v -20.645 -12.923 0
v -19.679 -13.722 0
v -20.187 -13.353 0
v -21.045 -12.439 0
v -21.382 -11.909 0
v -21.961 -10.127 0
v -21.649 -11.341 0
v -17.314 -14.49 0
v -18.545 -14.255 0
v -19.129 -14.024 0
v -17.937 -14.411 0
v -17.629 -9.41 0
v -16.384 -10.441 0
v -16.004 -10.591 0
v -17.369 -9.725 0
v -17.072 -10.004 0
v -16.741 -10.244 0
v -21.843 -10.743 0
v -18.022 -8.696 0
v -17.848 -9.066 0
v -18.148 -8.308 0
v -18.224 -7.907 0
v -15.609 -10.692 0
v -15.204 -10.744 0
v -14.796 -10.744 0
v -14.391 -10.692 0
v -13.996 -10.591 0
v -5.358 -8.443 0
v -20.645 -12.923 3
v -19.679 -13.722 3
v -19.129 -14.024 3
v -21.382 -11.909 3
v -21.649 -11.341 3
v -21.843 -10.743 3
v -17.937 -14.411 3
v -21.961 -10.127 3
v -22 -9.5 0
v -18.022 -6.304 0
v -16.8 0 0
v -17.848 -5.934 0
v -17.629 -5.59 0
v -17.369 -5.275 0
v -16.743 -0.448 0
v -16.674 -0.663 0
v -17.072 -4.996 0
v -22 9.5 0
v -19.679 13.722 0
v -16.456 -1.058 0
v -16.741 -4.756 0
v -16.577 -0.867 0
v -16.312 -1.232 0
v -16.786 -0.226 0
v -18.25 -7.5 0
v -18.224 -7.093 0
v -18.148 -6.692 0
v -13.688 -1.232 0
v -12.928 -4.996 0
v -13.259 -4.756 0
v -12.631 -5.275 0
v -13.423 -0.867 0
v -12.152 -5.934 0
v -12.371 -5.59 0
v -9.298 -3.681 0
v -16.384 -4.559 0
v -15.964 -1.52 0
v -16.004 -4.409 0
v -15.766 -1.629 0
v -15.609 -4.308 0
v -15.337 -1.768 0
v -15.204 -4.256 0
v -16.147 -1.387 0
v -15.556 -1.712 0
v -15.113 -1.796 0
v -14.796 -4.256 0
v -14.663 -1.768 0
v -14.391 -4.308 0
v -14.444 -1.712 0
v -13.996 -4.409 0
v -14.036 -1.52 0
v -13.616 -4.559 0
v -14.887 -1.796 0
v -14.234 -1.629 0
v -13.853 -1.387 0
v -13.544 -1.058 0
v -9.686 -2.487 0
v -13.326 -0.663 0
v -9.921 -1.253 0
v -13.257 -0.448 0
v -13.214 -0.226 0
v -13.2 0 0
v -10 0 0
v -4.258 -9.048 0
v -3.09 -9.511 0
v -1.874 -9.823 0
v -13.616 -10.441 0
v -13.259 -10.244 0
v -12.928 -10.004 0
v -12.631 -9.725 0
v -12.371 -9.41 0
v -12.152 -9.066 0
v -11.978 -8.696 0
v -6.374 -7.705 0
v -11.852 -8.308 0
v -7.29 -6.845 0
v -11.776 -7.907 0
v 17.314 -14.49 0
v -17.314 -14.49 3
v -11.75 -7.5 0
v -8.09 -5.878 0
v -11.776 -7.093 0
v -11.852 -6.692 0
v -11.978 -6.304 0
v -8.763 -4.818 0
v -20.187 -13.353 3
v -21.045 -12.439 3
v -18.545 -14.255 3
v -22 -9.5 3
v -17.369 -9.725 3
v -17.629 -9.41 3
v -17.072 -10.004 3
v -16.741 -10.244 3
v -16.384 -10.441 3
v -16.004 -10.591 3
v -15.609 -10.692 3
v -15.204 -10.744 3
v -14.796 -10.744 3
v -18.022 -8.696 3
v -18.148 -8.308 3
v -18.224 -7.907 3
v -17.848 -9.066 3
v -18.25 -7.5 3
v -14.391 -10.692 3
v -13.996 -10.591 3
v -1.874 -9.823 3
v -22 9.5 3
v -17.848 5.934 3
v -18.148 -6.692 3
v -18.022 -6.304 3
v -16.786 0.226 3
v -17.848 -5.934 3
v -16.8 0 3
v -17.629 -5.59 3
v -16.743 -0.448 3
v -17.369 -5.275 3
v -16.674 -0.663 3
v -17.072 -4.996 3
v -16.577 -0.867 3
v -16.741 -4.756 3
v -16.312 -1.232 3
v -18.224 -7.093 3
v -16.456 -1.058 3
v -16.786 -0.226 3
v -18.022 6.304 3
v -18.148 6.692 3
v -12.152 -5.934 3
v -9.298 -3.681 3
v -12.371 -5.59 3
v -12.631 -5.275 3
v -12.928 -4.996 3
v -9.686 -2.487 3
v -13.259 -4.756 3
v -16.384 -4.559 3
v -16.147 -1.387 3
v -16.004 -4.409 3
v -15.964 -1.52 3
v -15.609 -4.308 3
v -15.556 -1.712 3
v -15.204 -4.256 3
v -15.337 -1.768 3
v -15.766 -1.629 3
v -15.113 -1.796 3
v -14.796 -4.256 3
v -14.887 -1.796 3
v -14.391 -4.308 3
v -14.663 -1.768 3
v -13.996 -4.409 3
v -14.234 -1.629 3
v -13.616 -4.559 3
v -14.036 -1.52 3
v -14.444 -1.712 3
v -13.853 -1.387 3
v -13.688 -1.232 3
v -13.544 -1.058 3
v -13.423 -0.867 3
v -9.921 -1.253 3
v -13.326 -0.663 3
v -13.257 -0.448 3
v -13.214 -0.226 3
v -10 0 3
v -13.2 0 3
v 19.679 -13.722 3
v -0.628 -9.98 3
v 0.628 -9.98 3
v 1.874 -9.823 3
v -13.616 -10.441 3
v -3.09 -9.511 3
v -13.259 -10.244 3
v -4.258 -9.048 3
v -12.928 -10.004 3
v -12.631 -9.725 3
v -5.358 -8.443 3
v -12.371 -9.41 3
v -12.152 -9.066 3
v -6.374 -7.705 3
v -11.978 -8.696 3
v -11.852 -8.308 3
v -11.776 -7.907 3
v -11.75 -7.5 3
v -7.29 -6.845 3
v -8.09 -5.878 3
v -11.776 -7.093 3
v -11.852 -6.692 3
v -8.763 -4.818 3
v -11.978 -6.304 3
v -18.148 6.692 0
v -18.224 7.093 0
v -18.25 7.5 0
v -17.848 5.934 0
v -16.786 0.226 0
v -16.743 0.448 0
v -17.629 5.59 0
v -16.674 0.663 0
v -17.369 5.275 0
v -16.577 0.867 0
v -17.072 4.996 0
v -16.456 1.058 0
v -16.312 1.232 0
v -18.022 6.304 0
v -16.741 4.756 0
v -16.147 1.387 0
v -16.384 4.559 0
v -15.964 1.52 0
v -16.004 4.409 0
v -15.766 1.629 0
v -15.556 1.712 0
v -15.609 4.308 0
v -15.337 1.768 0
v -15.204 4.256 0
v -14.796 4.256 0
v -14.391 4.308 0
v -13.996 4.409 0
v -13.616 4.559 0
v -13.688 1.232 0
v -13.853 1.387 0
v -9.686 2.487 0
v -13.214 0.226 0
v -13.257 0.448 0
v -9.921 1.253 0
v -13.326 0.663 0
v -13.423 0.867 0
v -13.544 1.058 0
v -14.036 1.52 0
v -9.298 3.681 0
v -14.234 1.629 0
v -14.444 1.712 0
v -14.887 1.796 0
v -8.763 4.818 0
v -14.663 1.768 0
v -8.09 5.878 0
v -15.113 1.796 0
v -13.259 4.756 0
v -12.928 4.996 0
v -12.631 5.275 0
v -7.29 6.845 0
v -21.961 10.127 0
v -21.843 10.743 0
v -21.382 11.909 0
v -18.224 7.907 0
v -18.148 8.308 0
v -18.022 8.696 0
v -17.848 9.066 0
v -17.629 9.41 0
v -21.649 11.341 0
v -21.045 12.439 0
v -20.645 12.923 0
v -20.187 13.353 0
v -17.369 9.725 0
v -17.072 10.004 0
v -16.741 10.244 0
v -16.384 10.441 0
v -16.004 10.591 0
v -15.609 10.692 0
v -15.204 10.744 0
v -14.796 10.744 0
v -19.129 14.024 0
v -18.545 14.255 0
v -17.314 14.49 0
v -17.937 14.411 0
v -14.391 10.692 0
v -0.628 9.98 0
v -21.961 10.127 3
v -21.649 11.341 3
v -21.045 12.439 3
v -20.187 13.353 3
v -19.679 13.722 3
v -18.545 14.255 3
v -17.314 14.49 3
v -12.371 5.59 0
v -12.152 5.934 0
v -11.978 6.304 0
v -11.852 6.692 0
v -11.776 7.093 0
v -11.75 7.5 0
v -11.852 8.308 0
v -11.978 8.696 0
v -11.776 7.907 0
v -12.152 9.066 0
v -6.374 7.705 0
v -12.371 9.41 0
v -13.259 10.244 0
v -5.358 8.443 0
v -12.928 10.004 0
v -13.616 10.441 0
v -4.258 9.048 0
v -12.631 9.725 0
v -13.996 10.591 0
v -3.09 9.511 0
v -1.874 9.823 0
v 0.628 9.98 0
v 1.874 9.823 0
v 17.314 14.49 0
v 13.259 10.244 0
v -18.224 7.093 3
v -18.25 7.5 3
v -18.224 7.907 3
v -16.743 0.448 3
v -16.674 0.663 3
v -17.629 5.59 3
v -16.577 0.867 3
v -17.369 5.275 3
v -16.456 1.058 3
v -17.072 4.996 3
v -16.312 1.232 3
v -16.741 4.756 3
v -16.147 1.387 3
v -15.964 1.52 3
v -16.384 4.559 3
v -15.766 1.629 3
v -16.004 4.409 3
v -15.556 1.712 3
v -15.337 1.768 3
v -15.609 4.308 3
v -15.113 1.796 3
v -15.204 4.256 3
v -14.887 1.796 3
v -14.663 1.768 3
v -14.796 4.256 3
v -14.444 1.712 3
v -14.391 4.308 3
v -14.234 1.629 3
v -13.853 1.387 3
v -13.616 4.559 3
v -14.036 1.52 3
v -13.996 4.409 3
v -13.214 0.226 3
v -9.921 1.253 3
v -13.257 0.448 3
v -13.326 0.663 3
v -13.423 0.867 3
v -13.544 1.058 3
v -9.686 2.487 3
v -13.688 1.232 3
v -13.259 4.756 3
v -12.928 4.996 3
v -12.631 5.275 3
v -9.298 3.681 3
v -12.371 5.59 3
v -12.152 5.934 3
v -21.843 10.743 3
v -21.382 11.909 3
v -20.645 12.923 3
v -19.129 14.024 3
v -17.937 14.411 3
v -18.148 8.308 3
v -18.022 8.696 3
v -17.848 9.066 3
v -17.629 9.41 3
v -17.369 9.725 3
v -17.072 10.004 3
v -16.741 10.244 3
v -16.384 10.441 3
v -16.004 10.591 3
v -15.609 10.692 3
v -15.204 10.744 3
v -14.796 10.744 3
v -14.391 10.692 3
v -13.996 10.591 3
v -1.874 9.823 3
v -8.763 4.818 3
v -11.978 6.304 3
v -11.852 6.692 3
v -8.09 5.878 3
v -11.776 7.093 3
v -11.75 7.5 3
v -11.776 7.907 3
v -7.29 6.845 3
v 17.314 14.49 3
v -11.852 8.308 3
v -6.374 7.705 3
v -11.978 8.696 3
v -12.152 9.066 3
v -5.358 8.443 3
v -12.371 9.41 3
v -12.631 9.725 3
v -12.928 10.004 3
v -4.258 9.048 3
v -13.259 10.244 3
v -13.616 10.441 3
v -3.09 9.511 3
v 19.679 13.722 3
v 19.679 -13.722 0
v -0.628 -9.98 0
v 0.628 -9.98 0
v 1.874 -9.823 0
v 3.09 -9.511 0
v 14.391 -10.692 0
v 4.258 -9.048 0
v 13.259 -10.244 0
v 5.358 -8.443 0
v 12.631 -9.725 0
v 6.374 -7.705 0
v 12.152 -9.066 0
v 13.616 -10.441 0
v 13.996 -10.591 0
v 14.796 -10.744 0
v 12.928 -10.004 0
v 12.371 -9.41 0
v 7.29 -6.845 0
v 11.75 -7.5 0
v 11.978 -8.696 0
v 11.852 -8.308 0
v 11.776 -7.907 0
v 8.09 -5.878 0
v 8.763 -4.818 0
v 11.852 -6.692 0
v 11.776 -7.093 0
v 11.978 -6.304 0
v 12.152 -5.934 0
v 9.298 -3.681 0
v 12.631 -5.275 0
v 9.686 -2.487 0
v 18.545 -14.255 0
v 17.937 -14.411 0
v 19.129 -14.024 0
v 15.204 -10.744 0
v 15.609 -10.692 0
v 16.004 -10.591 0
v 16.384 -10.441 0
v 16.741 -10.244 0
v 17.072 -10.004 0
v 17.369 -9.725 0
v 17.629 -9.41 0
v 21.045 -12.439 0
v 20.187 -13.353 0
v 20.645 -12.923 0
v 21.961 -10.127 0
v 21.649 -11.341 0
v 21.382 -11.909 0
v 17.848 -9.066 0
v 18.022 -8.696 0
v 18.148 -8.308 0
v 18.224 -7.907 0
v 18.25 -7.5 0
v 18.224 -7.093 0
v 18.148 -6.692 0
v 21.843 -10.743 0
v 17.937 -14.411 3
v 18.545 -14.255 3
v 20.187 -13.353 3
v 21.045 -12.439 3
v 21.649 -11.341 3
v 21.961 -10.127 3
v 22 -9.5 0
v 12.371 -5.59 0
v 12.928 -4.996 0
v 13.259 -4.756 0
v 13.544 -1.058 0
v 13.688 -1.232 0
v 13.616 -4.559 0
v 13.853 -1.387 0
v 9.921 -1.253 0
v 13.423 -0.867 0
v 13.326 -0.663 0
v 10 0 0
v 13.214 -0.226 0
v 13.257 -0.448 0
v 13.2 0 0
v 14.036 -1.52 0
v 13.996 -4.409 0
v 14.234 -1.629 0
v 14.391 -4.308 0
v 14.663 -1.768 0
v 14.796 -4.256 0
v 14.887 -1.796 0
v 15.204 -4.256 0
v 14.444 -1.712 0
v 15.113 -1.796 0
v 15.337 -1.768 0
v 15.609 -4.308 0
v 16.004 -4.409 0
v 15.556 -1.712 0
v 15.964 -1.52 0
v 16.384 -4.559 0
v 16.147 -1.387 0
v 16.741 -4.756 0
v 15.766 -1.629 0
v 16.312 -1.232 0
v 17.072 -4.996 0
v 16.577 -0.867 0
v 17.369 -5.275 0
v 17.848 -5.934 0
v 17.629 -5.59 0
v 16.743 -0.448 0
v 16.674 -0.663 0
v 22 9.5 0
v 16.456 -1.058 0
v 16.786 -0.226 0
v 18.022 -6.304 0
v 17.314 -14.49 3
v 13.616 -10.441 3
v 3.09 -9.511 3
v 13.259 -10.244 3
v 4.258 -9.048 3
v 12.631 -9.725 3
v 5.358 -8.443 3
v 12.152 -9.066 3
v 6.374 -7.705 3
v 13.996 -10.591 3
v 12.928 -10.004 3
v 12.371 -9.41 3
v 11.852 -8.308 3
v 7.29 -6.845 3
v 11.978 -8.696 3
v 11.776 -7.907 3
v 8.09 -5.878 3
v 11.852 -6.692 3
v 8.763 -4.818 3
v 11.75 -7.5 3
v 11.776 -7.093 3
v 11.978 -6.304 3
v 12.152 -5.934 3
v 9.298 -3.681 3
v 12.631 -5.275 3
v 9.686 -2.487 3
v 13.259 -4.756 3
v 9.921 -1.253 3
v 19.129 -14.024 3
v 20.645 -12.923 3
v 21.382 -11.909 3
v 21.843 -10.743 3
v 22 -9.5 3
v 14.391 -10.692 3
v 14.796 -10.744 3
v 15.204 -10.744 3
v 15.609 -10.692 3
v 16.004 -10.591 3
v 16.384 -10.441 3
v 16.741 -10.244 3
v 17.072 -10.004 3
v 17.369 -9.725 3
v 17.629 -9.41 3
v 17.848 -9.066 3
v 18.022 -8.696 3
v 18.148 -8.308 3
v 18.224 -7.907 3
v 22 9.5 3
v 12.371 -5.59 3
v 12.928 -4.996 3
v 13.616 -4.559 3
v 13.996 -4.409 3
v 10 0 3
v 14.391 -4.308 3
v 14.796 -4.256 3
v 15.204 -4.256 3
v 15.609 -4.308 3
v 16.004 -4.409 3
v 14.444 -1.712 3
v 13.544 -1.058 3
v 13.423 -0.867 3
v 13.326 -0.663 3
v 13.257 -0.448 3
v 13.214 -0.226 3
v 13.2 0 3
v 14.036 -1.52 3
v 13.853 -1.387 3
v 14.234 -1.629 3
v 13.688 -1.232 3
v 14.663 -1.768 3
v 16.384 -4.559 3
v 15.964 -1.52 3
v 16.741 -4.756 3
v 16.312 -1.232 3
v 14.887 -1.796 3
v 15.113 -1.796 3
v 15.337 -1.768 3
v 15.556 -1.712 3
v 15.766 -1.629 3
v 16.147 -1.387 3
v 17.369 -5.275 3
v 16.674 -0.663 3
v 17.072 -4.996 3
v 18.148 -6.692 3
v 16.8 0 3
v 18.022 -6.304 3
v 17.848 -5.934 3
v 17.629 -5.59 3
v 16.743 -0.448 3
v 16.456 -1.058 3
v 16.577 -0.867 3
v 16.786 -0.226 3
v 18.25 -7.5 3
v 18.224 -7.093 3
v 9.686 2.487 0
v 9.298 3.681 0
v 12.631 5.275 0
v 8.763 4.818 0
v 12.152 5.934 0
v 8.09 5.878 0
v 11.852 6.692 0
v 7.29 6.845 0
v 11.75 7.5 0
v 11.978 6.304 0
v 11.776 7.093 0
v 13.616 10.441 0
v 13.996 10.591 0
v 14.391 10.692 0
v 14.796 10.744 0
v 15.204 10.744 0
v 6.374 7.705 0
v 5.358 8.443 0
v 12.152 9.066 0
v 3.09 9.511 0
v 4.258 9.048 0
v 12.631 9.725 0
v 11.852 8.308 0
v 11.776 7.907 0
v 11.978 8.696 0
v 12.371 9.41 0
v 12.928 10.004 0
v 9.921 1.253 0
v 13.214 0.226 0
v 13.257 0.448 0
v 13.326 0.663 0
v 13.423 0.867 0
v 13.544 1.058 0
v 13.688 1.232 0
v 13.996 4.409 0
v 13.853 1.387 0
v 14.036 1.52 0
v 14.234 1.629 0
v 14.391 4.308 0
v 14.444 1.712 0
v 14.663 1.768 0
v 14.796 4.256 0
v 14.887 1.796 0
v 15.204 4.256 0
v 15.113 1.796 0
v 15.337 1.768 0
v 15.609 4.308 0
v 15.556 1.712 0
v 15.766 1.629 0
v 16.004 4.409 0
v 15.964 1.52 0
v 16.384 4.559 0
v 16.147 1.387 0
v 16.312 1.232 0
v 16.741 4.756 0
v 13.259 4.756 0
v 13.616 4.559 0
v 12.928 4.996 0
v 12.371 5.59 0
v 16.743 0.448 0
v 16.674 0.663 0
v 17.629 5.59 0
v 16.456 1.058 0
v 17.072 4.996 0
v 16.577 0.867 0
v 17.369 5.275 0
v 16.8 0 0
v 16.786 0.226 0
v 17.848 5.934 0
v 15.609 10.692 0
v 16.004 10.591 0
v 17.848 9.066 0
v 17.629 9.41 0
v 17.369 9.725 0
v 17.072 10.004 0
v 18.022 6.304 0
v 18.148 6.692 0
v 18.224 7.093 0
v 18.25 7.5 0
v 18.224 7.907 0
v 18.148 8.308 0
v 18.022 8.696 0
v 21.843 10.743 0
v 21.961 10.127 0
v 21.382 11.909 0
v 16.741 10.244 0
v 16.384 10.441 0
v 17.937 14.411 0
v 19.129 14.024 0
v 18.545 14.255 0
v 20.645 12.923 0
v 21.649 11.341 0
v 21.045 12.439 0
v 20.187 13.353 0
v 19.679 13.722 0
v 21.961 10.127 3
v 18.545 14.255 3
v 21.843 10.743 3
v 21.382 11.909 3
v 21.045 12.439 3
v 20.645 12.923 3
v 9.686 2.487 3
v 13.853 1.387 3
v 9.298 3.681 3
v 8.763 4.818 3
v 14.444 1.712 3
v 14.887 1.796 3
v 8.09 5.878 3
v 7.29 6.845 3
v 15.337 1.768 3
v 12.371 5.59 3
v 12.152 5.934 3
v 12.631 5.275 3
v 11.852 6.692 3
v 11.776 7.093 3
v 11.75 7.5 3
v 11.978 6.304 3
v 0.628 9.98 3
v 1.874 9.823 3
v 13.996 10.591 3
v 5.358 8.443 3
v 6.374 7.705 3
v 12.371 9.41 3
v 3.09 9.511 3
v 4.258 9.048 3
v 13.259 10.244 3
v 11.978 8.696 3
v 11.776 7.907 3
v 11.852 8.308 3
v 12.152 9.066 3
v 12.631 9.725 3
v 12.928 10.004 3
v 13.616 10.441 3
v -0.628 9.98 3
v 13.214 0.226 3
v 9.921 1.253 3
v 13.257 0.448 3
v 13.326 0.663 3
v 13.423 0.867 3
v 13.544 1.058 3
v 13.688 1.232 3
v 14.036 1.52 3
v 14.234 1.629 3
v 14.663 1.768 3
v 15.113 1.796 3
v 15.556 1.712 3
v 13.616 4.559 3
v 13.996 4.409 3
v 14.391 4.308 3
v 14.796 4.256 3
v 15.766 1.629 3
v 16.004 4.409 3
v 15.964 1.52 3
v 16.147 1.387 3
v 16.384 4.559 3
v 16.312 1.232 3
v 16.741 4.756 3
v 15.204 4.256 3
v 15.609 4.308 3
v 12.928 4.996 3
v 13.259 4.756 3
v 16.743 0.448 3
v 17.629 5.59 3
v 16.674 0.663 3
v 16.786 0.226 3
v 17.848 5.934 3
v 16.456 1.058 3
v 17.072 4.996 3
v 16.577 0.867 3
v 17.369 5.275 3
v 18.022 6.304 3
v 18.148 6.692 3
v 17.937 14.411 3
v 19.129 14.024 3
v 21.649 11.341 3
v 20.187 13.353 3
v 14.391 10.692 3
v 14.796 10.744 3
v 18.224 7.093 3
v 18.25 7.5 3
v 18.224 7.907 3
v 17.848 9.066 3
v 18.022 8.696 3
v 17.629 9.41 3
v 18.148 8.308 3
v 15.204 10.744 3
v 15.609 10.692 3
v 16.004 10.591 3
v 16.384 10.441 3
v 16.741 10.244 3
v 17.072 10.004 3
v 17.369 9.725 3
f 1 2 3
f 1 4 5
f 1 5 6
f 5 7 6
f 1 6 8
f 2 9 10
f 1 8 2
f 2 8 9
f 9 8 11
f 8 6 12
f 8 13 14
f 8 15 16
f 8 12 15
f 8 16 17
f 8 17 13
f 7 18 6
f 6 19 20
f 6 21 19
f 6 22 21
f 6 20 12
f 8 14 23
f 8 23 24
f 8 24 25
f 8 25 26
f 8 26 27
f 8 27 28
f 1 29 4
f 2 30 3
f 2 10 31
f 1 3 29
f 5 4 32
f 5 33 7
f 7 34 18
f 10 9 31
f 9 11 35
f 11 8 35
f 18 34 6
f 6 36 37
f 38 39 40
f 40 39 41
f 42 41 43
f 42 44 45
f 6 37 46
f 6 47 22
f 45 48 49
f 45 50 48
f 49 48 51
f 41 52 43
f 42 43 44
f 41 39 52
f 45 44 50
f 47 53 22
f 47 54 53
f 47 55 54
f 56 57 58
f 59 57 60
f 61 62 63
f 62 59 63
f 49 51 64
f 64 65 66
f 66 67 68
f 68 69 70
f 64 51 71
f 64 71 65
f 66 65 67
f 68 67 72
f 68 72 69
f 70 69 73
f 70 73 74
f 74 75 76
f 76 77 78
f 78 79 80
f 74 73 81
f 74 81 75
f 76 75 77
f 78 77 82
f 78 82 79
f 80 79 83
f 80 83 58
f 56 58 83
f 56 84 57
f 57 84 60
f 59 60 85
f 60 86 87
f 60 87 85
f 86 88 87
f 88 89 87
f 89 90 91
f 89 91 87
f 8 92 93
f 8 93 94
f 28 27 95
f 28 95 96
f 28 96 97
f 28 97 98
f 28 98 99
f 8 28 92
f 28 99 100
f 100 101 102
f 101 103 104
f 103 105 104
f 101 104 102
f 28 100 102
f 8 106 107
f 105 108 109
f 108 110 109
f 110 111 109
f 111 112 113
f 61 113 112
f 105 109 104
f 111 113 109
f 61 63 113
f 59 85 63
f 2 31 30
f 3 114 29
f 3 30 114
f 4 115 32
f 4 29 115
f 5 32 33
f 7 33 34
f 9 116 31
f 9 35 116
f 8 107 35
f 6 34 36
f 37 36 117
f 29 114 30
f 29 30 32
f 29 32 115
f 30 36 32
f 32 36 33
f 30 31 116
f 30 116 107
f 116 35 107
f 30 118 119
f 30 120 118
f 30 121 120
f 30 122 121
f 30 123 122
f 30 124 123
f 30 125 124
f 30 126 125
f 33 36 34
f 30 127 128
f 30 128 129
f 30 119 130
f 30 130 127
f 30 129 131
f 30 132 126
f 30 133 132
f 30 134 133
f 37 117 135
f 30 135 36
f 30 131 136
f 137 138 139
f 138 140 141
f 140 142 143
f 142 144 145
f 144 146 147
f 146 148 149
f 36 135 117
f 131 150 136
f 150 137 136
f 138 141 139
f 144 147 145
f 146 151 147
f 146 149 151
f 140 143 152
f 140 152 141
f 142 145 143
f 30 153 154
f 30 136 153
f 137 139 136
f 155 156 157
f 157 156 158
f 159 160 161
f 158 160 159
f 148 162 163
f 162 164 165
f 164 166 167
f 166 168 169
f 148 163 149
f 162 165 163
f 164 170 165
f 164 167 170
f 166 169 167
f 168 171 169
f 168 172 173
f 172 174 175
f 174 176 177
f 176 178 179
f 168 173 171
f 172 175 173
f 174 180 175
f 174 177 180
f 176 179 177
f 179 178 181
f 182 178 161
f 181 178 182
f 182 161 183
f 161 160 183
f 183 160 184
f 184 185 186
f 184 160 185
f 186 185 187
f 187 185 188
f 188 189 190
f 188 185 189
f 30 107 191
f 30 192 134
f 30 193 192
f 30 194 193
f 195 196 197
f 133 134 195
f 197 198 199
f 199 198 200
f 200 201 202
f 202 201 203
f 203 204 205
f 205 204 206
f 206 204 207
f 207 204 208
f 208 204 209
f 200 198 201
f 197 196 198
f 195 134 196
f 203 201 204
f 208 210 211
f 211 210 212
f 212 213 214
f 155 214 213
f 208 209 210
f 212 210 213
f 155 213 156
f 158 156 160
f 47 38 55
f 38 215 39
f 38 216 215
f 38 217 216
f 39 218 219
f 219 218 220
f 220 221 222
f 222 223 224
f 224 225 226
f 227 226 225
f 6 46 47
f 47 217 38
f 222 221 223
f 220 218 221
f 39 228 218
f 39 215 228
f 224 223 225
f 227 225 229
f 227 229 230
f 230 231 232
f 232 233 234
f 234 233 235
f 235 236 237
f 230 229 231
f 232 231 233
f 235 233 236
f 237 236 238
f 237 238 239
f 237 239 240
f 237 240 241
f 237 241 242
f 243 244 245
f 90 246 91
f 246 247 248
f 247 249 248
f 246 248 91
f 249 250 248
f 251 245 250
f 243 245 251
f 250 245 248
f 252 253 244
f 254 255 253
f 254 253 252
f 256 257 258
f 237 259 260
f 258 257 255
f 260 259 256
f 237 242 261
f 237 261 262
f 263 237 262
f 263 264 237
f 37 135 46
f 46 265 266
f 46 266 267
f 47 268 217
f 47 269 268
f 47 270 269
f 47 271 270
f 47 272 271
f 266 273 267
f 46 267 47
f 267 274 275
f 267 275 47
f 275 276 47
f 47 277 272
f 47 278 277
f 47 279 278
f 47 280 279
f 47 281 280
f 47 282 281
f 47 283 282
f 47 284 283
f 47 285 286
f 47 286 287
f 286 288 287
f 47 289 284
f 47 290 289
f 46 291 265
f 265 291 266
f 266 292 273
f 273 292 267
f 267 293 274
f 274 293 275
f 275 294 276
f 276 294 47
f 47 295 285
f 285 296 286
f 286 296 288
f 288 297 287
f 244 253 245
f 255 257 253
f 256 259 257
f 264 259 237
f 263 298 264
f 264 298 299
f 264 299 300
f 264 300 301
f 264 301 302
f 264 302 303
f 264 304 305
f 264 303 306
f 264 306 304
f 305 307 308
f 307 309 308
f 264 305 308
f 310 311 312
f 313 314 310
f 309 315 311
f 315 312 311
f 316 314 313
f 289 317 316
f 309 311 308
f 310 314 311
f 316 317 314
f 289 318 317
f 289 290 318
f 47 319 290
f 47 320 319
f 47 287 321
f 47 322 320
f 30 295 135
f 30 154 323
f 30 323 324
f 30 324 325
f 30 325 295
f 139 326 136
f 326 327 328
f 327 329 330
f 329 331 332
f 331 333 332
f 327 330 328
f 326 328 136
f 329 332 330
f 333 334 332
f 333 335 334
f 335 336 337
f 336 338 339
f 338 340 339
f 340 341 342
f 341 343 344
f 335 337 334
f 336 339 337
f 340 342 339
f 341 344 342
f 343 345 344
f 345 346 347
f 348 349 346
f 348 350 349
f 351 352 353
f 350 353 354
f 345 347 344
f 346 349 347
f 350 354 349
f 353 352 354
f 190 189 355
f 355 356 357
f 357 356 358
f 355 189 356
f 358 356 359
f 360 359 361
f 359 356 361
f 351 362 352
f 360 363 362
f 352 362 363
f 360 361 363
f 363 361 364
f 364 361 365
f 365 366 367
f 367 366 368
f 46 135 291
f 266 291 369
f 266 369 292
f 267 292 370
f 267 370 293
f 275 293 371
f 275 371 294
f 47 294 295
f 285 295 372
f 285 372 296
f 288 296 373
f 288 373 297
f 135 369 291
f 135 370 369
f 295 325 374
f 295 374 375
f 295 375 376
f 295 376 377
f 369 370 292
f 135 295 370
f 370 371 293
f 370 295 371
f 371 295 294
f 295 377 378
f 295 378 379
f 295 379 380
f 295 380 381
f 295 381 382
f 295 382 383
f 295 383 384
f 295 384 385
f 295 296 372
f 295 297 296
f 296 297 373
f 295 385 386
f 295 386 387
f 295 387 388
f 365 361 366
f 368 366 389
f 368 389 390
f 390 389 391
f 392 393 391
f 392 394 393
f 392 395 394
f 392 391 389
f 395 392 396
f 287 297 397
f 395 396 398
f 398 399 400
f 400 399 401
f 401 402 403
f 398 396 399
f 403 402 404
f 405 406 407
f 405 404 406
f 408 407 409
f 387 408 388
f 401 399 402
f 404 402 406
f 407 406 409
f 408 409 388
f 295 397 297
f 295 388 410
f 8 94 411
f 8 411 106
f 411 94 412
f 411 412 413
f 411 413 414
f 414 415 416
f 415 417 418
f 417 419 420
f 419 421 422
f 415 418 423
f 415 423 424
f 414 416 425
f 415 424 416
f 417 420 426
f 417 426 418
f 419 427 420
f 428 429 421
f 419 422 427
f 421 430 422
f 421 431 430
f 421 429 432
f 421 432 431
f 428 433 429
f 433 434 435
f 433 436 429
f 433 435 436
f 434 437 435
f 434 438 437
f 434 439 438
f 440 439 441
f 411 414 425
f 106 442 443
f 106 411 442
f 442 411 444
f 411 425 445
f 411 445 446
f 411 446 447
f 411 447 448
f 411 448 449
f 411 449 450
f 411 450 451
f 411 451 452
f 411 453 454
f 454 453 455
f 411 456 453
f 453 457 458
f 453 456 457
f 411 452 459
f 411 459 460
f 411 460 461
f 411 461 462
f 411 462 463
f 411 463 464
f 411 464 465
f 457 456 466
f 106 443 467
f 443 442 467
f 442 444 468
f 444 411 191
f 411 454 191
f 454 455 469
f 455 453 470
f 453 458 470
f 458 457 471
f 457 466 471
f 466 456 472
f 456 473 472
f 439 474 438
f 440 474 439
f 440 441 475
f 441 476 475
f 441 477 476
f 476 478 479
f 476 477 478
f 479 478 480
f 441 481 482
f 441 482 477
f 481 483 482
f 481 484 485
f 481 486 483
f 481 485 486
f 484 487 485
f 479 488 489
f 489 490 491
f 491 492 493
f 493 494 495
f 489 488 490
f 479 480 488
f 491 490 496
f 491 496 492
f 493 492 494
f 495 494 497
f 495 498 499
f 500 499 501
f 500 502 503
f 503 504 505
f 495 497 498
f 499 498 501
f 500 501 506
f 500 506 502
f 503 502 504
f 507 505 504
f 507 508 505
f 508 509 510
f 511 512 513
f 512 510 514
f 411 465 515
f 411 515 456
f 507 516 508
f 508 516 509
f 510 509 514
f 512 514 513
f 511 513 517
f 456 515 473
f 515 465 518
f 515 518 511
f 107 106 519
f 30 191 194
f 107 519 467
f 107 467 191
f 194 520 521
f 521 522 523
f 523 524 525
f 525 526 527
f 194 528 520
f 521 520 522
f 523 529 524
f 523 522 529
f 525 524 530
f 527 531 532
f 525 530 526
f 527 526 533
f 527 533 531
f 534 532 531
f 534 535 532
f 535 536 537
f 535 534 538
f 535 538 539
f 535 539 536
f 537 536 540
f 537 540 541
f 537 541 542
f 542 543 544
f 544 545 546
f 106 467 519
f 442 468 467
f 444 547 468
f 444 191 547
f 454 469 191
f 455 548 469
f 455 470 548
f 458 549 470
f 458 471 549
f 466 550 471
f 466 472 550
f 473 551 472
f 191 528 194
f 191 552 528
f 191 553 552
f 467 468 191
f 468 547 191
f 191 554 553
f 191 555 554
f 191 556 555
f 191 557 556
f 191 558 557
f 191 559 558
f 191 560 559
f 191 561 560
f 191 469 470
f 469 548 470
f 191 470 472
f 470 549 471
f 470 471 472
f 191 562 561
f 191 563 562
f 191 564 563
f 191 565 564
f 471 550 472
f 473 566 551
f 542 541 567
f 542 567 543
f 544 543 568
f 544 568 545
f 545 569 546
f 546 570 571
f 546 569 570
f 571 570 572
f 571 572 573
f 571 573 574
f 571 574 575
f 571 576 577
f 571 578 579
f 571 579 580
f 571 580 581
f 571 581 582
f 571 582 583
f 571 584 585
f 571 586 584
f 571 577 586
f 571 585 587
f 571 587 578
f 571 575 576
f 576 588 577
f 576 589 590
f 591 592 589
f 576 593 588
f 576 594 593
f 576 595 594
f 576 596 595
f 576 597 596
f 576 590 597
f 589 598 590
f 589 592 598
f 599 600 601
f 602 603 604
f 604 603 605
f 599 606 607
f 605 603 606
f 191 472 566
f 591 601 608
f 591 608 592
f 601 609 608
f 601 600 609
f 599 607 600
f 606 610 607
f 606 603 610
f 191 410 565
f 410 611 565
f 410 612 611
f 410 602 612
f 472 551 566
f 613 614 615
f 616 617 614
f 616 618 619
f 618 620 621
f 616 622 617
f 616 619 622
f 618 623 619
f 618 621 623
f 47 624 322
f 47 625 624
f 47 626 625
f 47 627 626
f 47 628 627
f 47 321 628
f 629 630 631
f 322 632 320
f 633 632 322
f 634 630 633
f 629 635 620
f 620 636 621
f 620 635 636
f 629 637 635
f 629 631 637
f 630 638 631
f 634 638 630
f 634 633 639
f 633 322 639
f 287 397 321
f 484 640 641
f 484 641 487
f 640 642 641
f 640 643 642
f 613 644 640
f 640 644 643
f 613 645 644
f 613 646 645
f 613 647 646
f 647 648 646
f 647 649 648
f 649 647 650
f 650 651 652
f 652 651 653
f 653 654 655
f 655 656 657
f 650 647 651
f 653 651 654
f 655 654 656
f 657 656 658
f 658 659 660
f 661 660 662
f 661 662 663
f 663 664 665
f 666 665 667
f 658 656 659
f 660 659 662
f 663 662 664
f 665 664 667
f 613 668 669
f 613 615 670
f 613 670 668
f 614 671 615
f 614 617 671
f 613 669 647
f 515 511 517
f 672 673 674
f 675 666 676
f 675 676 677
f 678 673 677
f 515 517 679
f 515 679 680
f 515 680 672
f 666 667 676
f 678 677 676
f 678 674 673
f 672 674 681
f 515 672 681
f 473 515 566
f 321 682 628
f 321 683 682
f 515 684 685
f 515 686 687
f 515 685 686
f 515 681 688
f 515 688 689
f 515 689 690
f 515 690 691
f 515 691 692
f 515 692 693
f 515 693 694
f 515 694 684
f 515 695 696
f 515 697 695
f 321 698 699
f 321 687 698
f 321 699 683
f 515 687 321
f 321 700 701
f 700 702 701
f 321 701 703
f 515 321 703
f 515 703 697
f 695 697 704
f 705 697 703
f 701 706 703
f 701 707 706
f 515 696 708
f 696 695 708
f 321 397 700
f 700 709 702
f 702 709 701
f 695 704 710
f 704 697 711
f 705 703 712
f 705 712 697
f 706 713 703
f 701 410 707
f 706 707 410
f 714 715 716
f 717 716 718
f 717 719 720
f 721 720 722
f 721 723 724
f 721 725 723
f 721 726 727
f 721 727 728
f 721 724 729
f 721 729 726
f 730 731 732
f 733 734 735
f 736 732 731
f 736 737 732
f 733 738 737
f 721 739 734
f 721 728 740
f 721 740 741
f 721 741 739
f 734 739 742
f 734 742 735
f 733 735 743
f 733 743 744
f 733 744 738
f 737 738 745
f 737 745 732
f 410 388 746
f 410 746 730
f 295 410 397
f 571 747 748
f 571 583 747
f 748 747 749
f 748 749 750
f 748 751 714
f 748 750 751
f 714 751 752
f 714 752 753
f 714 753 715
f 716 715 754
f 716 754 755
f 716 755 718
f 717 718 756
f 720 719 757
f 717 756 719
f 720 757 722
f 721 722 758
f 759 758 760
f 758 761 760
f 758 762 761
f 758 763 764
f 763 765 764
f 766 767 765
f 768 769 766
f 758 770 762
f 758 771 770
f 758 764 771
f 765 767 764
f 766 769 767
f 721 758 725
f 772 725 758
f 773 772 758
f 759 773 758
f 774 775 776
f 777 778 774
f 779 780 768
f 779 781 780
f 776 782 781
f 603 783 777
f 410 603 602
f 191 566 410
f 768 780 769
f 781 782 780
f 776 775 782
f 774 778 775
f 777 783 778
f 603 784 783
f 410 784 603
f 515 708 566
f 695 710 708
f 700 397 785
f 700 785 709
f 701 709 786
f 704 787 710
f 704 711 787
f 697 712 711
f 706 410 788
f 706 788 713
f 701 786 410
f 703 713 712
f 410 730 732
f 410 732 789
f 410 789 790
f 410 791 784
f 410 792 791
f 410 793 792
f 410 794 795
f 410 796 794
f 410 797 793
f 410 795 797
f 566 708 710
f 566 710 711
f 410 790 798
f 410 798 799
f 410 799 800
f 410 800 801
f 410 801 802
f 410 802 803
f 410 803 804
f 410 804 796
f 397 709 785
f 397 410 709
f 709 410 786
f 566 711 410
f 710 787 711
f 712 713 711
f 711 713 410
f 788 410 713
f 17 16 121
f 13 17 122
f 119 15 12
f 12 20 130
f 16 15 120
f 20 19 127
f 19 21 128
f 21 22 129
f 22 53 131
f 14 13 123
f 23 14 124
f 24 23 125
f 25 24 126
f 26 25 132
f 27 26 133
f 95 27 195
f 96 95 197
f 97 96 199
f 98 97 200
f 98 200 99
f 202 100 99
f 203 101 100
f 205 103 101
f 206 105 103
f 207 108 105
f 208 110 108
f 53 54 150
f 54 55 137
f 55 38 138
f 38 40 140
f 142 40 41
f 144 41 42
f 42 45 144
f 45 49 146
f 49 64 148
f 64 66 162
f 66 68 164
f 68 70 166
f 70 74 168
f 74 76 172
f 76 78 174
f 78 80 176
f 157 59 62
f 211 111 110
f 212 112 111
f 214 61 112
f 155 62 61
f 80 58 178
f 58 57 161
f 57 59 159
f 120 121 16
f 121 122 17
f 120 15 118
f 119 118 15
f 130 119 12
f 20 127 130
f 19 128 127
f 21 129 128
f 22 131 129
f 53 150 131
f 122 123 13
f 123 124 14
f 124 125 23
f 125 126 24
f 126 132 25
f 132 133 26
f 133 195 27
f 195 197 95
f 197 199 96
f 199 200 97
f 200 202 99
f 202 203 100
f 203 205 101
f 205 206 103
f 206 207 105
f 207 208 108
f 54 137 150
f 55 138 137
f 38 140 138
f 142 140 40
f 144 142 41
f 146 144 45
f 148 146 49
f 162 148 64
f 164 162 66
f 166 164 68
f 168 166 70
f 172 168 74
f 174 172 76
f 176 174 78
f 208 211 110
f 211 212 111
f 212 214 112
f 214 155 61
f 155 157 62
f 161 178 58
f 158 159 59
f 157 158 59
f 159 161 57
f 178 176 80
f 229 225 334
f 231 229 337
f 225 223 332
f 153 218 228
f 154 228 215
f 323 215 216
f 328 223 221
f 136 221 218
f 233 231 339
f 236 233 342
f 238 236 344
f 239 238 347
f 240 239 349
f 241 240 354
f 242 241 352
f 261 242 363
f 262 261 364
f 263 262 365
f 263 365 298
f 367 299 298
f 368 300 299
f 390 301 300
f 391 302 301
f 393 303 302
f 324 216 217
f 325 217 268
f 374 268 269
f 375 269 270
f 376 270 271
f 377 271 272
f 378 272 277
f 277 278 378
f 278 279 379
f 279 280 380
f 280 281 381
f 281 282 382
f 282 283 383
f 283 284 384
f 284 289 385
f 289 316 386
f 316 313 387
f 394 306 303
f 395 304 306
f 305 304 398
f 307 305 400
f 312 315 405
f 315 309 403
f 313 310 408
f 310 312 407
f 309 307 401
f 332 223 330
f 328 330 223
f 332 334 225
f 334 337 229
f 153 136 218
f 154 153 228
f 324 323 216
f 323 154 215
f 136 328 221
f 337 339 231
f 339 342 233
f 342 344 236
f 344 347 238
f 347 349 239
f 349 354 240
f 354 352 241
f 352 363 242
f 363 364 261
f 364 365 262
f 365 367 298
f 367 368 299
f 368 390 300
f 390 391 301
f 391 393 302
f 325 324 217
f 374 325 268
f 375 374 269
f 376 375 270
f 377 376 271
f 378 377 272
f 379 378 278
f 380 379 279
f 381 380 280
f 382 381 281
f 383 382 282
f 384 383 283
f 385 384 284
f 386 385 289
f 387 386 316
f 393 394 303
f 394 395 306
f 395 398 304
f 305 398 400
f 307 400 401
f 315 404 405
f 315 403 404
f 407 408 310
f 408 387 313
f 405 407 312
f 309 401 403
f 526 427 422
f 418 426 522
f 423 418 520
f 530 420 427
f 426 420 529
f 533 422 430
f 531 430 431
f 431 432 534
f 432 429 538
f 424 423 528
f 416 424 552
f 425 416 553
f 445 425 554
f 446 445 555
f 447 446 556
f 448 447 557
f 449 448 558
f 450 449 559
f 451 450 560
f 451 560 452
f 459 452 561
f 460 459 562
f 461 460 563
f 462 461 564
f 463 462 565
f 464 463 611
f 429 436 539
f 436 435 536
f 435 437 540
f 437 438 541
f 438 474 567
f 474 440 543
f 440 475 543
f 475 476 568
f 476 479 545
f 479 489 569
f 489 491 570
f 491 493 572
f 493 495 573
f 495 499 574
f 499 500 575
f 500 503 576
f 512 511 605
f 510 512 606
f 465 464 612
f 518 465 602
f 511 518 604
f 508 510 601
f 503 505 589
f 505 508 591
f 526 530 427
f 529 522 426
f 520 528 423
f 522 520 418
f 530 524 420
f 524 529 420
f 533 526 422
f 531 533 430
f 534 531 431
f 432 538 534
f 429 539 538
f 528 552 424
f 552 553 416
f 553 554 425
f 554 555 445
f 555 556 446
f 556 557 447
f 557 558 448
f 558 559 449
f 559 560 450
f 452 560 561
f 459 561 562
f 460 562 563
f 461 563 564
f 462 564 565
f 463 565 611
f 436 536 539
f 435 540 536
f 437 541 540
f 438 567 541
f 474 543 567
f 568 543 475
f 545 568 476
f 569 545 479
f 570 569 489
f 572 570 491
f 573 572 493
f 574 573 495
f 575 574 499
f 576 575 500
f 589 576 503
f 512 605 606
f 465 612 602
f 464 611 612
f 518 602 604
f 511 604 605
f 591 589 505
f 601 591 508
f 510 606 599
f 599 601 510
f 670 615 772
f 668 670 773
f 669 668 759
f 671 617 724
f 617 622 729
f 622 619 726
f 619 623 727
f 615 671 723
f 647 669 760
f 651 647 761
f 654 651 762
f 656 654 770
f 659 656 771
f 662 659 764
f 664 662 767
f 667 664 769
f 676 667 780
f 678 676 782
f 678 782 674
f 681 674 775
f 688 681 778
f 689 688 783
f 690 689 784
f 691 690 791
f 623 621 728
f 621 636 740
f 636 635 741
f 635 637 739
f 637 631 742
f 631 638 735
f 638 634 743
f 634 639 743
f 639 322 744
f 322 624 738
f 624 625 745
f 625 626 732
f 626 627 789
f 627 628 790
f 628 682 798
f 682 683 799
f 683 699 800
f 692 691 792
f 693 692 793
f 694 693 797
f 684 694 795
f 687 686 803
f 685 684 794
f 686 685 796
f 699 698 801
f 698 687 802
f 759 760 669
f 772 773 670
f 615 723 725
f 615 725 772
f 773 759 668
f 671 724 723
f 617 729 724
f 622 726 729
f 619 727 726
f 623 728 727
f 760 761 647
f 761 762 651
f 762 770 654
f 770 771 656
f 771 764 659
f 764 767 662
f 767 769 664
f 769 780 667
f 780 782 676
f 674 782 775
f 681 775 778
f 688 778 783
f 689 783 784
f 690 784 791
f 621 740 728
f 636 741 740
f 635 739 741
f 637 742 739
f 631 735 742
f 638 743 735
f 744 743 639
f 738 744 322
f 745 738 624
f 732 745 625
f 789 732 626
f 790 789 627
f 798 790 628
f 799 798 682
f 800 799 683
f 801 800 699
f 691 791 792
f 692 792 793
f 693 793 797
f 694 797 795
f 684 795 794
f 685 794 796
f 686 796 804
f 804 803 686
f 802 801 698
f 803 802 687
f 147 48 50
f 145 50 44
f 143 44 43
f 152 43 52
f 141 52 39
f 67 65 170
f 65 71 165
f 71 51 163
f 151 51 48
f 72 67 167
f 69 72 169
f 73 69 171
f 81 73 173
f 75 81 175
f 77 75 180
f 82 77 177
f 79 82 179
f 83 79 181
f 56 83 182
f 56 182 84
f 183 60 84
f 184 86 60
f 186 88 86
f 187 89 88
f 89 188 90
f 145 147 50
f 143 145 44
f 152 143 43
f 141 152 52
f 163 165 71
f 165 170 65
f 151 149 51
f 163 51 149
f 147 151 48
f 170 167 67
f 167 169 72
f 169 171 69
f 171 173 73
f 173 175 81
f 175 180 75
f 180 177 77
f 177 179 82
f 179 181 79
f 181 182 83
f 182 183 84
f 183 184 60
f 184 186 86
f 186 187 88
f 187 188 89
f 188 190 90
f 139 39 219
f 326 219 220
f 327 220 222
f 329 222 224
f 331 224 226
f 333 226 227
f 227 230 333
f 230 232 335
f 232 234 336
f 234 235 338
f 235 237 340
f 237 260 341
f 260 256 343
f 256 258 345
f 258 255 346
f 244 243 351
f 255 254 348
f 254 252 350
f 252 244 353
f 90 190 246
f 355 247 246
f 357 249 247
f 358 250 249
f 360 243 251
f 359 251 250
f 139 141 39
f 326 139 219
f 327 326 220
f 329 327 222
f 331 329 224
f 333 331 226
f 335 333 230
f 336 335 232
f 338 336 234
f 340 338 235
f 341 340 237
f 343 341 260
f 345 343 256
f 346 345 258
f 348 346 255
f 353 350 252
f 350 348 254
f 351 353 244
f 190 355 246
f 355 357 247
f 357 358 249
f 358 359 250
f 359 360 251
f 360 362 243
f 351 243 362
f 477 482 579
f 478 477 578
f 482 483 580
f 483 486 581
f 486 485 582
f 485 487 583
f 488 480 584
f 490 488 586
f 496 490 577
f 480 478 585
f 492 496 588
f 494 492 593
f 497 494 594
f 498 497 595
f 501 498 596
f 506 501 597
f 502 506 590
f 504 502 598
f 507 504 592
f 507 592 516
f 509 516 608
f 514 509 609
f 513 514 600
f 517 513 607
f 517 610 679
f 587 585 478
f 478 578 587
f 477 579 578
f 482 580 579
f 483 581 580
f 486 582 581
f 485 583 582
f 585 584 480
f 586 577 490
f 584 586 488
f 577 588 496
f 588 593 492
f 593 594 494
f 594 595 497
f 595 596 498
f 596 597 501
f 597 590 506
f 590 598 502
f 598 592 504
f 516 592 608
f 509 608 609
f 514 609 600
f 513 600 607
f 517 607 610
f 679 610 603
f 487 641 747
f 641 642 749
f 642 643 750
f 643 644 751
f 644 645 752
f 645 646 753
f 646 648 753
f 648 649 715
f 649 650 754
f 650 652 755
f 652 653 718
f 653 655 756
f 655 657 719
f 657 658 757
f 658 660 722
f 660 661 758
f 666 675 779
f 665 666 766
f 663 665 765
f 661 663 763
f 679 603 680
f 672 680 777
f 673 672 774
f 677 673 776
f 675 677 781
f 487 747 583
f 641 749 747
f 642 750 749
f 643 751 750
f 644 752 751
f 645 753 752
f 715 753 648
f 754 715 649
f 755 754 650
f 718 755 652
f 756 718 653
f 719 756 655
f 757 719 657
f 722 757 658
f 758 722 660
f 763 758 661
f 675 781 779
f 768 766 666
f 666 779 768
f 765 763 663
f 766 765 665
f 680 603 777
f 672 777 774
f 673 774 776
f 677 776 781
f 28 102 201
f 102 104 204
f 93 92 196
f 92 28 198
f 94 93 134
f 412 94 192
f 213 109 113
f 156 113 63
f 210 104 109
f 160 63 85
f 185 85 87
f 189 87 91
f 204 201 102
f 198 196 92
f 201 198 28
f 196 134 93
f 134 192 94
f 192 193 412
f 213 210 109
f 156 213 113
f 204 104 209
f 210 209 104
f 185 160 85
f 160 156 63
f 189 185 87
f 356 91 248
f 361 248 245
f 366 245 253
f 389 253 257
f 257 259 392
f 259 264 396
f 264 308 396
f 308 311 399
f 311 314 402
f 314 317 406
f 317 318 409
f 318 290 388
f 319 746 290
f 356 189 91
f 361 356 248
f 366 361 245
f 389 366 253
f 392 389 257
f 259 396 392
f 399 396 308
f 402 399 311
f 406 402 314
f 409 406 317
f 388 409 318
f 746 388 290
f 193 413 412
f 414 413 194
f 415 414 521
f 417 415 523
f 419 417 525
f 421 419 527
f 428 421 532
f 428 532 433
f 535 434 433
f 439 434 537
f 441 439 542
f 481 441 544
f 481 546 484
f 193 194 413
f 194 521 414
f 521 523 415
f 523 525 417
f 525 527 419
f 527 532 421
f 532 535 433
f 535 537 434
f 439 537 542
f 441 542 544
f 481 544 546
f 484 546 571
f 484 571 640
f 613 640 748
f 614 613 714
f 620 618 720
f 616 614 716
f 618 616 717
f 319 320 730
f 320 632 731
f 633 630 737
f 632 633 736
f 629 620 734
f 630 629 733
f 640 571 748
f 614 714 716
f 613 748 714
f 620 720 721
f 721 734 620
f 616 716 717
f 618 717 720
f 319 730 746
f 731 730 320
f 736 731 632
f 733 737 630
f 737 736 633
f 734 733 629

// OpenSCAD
$fn = 50;

difference() {
	union() {
		hull() {
			translate(v = [-17.0, 9.5, 0]) {
				cylinder(h = 3, r = 5);
			}
			translate(v = [17.0, 9.5, 0]) {
				cylinder(h = 3, r = 5);
			}
			translate(v = [-17.0, -9.5, 0]) {
				cylinder(h = 3, r = 5);
			}
			translate(v = [17.0, -9.5, 0]) {
				cylinder(h = 3, r = 5);
			}
		}
	}
	union() {
		translate(v = [-15.0, -7.5, 0]) {
			cylinder(h = 3, r = 3.25);
		}
		translate(v = [-15.0, 7.5, 0]) {
			cylinder(h = 3, r = 3.25);
		}
		translate(v = [15.0, -7.5, 0]) {
			cylinder(h = 3, r = 3.25);
		}
		translate(v = [15.0, 7.5, 0]) {
			cylinder(h = 3, r = 3.25);
		}
		translate(v = [-15.0, 0.0, 0]) {
			cylinder(h = 3, r = 1.8);
		}
		translate(v = [15.0, 0.0, 0]) {
			cylinder(h = 3, r = 1.8);
		}
		cylinder(h = 3, r = 10.0);
	}
}
